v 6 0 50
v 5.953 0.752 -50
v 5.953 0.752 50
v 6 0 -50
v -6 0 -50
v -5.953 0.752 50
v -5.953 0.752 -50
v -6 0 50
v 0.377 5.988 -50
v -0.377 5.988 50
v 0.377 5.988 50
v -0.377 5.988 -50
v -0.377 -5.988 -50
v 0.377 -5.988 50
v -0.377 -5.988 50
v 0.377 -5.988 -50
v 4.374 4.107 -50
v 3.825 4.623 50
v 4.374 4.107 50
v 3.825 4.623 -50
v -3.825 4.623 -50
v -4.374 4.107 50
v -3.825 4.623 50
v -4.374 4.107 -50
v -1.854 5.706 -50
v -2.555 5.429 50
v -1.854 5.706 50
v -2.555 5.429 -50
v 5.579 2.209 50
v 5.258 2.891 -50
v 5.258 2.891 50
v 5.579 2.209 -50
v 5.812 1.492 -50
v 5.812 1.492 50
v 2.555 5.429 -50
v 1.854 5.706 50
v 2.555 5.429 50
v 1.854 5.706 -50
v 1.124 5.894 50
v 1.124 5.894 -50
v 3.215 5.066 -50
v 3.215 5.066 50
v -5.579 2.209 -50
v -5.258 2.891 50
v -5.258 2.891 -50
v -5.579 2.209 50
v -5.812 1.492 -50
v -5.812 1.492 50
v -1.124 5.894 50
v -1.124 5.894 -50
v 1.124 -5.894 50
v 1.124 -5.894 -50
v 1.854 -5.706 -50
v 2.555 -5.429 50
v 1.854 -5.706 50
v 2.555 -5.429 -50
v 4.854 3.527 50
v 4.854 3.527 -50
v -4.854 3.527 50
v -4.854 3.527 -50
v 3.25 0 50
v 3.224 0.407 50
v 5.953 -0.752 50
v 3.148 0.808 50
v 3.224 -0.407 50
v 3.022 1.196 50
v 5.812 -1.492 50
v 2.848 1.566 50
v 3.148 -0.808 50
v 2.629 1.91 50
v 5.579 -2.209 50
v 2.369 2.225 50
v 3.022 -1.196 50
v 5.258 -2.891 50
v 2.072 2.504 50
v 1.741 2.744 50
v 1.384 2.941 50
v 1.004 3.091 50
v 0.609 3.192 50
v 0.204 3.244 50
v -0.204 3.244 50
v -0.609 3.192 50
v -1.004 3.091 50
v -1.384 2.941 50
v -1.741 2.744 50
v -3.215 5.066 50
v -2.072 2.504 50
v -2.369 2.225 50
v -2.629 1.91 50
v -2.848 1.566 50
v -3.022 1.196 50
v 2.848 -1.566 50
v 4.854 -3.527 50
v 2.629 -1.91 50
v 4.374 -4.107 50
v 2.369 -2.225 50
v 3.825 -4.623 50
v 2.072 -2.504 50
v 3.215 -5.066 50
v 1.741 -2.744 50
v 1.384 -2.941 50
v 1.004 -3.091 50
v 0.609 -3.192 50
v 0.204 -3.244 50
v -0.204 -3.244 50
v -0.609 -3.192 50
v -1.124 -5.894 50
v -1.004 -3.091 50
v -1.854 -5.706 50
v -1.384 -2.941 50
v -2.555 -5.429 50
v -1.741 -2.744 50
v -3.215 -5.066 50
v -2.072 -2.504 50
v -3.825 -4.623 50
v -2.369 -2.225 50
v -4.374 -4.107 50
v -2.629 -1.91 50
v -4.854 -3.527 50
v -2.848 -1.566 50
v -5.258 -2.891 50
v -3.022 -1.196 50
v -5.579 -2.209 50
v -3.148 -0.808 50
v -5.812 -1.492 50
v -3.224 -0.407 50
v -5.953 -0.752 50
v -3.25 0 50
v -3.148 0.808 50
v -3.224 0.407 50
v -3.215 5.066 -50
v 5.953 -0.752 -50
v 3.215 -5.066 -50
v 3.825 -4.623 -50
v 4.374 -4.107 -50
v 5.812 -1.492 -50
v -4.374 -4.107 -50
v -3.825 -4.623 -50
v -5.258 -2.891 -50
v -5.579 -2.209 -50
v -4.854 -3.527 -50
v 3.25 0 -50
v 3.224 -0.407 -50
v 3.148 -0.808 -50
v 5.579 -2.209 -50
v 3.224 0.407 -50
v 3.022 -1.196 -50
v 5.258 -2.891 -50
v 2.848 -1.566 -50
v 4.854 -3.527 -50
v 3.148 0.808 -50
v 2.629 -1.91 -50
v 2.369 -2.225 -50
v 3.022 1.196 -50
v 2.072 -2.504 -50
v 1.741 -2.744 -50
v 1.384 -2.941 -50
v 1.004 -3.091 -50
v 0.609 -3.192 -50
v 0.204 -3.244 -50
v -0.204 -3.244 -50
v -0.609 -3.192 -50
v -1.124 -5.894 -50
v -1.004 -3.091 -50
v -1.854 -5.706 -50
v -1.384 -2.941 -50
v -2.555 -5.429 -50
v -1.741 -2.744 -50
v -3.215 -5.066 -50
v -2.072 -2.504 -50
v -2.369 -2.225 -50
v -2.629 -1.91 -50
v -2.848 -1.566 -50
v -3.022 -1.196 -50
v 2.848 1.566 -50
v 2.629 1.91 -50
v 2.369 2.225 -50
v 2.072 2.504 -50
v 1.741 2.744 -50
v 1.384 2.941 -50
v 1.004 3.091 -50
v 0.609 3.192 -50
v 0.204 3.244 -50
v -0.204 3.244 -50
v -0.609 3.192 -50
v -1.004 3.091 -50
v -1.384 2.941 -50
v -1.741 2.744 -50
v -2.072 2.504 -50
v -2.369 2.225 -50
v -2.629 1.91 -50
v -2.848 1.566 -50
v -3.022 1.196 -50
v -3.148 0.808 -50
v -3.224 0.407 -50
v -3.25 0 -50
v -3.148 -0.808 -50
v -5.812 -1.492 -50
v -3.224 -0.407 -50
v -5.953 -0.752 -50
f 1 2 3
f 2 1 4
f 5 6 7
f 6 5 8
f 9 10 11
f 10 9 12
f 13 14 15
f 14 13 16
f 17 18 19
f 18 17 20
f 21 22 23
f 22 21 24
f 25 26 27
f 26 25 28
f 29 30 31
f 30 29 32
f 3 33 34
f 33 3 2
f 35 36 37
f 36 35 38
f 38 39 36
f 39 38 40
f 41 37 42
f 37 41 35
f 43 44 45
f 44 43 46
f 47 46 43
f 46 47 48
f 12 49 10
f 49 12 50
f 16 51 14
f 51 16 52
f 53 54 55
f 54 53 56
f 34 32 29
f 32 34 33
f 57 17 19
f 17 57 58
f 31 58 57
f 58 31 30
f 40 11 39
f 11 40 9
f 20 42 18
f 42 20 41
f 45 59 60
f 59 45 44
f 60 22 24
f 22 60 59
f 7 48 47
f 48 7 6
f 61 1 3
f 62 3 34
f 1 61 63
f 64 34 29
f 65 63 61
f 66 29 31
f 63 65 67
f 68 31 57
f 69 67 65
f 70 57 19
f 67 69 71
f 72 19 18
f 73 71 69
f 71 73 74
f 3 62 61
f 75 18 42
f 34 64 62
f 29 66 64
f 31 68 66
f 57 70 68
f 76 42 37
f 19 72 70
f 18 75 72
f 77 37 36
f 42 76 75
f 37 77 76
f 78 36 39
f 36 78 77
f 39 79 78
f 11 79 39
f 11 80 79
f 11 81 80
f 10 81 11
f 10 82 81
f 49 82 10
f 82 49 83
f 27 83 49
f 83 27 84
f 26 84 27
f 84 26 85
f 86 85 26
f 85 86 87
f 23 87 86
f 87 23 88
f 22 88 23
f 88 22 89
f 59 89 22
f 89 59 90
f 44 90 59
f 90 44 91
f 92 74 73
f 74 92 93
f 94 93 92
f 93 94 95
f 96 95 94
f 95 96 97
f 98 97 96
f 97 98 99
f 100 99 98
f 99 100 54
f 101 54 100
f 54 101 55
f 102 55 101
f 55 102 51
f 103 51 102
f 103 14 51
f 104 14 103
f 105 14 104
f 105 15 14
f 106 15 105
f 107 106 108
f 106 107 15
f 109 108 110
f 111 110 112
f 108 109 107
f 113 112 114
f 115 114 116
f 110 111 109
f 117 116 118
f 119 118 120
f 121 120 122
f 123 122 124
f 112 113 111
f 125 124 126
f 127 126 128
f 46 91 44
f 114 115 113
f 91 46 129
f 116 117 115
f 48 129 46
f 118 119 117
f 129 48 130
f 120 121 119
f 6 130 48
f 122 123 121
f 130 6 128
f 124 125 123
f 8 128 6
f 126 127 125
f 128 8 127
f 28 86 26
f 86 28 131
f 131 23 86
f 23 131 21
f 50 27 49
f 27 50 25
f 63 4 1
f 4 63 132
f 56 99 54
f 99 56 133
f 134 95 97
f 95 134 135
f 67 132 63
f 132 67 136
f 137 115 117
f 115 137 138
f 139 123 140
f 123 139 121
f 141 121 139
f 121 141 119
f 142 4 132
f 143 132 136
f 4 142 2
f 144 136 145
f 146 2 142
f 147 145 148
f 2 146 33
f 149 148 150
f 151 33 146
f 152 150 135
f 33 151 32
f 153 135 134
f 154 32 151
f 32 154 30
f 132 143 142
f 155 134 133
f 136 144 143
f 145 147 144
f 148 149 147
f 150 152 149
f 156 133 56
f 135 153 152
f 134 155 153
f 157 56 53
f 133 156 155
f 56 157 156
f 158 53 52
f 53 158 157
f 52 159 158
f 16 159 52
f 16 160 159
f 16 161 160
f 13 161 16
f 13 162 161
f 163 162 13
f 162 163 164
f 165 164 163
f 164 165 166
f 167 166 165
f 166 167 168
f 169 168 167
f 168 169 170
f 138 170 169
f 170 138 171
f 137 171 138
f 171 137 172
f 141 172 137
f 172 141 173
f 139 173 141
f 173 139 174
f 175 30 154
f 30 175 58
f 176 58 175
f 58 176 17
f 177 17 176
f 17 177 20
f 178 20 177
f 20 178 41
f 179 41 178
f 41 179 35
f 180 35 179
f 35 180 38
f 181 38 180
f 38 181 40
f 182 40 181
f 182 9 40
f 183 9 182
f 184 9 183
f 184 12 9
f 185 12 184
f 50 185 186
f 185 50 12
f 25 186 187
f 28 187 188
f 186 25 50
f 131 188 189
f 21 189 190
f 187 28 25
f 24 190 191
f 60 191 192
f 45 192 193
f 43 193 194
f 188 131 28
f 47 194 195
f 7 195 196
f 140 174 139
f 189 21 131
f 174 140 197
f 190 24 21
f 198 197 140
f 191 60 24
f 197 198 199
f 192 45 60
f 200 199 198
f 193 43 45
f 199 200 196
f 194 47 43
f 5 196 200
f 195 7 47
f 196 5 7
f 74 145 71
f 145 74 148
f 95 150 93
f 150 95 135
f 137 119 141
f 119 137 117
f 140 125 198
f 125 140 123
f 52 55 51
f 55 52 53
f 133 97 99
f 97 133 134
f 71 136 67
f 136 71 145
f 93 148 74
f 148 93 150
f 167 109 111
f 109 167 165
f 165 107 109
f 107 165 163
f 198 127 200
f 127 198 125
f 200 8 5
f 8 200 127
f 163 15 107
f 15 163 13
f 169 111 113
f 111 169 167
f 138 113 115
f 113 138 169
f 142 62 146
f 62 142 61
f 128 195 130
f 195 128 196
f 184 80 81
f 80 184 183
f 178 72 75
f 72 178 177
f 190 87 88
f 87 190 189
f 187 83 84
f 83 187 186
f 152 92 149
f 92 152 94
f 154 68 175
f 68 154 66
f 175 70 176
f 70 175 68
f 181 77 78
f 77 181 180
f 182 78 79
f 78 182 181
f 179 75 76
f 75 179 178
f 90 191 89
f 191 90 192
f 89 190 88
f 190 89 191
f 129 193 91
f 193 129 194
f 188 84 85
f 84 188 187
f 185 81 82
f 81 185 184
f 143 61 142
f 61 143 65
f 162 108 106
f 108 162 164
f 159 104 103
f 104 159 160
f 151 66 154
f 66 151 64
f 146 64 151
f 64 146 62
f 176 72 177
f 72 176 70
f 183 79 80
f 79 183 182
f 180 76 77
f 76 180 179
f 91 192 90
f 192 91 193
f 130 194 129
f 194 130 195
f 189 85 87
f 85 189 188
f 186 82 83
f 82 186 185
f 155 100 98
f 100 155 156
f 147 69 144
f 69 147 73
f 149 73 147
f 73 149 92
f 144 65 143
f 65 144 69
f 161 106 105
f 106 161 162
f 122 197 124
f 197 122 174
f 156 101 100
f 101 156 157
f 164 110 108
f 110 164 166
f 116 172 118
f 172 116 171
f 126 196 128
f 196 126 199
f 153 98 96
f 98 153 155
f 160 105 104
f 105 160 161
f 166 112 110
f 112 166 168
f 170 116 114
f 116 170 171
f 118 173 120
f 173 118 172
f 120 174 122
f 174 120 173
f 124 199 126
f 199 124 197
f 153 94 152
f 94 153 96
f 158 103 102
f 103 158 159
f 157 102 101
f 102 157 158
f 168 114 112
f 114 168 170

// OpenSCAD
$fn = 50;


difference() {
	union() {
		translate(v = [0, 0, -50.0000000000]) {
			cylinder(h = 100, r = 6.0000000000);
		}
	}
	union() {
		translate(v = [0, 0, -100.0000000000]) {
			cylinder(h = 200, r = 3.2500000000);
		}
	}
}
